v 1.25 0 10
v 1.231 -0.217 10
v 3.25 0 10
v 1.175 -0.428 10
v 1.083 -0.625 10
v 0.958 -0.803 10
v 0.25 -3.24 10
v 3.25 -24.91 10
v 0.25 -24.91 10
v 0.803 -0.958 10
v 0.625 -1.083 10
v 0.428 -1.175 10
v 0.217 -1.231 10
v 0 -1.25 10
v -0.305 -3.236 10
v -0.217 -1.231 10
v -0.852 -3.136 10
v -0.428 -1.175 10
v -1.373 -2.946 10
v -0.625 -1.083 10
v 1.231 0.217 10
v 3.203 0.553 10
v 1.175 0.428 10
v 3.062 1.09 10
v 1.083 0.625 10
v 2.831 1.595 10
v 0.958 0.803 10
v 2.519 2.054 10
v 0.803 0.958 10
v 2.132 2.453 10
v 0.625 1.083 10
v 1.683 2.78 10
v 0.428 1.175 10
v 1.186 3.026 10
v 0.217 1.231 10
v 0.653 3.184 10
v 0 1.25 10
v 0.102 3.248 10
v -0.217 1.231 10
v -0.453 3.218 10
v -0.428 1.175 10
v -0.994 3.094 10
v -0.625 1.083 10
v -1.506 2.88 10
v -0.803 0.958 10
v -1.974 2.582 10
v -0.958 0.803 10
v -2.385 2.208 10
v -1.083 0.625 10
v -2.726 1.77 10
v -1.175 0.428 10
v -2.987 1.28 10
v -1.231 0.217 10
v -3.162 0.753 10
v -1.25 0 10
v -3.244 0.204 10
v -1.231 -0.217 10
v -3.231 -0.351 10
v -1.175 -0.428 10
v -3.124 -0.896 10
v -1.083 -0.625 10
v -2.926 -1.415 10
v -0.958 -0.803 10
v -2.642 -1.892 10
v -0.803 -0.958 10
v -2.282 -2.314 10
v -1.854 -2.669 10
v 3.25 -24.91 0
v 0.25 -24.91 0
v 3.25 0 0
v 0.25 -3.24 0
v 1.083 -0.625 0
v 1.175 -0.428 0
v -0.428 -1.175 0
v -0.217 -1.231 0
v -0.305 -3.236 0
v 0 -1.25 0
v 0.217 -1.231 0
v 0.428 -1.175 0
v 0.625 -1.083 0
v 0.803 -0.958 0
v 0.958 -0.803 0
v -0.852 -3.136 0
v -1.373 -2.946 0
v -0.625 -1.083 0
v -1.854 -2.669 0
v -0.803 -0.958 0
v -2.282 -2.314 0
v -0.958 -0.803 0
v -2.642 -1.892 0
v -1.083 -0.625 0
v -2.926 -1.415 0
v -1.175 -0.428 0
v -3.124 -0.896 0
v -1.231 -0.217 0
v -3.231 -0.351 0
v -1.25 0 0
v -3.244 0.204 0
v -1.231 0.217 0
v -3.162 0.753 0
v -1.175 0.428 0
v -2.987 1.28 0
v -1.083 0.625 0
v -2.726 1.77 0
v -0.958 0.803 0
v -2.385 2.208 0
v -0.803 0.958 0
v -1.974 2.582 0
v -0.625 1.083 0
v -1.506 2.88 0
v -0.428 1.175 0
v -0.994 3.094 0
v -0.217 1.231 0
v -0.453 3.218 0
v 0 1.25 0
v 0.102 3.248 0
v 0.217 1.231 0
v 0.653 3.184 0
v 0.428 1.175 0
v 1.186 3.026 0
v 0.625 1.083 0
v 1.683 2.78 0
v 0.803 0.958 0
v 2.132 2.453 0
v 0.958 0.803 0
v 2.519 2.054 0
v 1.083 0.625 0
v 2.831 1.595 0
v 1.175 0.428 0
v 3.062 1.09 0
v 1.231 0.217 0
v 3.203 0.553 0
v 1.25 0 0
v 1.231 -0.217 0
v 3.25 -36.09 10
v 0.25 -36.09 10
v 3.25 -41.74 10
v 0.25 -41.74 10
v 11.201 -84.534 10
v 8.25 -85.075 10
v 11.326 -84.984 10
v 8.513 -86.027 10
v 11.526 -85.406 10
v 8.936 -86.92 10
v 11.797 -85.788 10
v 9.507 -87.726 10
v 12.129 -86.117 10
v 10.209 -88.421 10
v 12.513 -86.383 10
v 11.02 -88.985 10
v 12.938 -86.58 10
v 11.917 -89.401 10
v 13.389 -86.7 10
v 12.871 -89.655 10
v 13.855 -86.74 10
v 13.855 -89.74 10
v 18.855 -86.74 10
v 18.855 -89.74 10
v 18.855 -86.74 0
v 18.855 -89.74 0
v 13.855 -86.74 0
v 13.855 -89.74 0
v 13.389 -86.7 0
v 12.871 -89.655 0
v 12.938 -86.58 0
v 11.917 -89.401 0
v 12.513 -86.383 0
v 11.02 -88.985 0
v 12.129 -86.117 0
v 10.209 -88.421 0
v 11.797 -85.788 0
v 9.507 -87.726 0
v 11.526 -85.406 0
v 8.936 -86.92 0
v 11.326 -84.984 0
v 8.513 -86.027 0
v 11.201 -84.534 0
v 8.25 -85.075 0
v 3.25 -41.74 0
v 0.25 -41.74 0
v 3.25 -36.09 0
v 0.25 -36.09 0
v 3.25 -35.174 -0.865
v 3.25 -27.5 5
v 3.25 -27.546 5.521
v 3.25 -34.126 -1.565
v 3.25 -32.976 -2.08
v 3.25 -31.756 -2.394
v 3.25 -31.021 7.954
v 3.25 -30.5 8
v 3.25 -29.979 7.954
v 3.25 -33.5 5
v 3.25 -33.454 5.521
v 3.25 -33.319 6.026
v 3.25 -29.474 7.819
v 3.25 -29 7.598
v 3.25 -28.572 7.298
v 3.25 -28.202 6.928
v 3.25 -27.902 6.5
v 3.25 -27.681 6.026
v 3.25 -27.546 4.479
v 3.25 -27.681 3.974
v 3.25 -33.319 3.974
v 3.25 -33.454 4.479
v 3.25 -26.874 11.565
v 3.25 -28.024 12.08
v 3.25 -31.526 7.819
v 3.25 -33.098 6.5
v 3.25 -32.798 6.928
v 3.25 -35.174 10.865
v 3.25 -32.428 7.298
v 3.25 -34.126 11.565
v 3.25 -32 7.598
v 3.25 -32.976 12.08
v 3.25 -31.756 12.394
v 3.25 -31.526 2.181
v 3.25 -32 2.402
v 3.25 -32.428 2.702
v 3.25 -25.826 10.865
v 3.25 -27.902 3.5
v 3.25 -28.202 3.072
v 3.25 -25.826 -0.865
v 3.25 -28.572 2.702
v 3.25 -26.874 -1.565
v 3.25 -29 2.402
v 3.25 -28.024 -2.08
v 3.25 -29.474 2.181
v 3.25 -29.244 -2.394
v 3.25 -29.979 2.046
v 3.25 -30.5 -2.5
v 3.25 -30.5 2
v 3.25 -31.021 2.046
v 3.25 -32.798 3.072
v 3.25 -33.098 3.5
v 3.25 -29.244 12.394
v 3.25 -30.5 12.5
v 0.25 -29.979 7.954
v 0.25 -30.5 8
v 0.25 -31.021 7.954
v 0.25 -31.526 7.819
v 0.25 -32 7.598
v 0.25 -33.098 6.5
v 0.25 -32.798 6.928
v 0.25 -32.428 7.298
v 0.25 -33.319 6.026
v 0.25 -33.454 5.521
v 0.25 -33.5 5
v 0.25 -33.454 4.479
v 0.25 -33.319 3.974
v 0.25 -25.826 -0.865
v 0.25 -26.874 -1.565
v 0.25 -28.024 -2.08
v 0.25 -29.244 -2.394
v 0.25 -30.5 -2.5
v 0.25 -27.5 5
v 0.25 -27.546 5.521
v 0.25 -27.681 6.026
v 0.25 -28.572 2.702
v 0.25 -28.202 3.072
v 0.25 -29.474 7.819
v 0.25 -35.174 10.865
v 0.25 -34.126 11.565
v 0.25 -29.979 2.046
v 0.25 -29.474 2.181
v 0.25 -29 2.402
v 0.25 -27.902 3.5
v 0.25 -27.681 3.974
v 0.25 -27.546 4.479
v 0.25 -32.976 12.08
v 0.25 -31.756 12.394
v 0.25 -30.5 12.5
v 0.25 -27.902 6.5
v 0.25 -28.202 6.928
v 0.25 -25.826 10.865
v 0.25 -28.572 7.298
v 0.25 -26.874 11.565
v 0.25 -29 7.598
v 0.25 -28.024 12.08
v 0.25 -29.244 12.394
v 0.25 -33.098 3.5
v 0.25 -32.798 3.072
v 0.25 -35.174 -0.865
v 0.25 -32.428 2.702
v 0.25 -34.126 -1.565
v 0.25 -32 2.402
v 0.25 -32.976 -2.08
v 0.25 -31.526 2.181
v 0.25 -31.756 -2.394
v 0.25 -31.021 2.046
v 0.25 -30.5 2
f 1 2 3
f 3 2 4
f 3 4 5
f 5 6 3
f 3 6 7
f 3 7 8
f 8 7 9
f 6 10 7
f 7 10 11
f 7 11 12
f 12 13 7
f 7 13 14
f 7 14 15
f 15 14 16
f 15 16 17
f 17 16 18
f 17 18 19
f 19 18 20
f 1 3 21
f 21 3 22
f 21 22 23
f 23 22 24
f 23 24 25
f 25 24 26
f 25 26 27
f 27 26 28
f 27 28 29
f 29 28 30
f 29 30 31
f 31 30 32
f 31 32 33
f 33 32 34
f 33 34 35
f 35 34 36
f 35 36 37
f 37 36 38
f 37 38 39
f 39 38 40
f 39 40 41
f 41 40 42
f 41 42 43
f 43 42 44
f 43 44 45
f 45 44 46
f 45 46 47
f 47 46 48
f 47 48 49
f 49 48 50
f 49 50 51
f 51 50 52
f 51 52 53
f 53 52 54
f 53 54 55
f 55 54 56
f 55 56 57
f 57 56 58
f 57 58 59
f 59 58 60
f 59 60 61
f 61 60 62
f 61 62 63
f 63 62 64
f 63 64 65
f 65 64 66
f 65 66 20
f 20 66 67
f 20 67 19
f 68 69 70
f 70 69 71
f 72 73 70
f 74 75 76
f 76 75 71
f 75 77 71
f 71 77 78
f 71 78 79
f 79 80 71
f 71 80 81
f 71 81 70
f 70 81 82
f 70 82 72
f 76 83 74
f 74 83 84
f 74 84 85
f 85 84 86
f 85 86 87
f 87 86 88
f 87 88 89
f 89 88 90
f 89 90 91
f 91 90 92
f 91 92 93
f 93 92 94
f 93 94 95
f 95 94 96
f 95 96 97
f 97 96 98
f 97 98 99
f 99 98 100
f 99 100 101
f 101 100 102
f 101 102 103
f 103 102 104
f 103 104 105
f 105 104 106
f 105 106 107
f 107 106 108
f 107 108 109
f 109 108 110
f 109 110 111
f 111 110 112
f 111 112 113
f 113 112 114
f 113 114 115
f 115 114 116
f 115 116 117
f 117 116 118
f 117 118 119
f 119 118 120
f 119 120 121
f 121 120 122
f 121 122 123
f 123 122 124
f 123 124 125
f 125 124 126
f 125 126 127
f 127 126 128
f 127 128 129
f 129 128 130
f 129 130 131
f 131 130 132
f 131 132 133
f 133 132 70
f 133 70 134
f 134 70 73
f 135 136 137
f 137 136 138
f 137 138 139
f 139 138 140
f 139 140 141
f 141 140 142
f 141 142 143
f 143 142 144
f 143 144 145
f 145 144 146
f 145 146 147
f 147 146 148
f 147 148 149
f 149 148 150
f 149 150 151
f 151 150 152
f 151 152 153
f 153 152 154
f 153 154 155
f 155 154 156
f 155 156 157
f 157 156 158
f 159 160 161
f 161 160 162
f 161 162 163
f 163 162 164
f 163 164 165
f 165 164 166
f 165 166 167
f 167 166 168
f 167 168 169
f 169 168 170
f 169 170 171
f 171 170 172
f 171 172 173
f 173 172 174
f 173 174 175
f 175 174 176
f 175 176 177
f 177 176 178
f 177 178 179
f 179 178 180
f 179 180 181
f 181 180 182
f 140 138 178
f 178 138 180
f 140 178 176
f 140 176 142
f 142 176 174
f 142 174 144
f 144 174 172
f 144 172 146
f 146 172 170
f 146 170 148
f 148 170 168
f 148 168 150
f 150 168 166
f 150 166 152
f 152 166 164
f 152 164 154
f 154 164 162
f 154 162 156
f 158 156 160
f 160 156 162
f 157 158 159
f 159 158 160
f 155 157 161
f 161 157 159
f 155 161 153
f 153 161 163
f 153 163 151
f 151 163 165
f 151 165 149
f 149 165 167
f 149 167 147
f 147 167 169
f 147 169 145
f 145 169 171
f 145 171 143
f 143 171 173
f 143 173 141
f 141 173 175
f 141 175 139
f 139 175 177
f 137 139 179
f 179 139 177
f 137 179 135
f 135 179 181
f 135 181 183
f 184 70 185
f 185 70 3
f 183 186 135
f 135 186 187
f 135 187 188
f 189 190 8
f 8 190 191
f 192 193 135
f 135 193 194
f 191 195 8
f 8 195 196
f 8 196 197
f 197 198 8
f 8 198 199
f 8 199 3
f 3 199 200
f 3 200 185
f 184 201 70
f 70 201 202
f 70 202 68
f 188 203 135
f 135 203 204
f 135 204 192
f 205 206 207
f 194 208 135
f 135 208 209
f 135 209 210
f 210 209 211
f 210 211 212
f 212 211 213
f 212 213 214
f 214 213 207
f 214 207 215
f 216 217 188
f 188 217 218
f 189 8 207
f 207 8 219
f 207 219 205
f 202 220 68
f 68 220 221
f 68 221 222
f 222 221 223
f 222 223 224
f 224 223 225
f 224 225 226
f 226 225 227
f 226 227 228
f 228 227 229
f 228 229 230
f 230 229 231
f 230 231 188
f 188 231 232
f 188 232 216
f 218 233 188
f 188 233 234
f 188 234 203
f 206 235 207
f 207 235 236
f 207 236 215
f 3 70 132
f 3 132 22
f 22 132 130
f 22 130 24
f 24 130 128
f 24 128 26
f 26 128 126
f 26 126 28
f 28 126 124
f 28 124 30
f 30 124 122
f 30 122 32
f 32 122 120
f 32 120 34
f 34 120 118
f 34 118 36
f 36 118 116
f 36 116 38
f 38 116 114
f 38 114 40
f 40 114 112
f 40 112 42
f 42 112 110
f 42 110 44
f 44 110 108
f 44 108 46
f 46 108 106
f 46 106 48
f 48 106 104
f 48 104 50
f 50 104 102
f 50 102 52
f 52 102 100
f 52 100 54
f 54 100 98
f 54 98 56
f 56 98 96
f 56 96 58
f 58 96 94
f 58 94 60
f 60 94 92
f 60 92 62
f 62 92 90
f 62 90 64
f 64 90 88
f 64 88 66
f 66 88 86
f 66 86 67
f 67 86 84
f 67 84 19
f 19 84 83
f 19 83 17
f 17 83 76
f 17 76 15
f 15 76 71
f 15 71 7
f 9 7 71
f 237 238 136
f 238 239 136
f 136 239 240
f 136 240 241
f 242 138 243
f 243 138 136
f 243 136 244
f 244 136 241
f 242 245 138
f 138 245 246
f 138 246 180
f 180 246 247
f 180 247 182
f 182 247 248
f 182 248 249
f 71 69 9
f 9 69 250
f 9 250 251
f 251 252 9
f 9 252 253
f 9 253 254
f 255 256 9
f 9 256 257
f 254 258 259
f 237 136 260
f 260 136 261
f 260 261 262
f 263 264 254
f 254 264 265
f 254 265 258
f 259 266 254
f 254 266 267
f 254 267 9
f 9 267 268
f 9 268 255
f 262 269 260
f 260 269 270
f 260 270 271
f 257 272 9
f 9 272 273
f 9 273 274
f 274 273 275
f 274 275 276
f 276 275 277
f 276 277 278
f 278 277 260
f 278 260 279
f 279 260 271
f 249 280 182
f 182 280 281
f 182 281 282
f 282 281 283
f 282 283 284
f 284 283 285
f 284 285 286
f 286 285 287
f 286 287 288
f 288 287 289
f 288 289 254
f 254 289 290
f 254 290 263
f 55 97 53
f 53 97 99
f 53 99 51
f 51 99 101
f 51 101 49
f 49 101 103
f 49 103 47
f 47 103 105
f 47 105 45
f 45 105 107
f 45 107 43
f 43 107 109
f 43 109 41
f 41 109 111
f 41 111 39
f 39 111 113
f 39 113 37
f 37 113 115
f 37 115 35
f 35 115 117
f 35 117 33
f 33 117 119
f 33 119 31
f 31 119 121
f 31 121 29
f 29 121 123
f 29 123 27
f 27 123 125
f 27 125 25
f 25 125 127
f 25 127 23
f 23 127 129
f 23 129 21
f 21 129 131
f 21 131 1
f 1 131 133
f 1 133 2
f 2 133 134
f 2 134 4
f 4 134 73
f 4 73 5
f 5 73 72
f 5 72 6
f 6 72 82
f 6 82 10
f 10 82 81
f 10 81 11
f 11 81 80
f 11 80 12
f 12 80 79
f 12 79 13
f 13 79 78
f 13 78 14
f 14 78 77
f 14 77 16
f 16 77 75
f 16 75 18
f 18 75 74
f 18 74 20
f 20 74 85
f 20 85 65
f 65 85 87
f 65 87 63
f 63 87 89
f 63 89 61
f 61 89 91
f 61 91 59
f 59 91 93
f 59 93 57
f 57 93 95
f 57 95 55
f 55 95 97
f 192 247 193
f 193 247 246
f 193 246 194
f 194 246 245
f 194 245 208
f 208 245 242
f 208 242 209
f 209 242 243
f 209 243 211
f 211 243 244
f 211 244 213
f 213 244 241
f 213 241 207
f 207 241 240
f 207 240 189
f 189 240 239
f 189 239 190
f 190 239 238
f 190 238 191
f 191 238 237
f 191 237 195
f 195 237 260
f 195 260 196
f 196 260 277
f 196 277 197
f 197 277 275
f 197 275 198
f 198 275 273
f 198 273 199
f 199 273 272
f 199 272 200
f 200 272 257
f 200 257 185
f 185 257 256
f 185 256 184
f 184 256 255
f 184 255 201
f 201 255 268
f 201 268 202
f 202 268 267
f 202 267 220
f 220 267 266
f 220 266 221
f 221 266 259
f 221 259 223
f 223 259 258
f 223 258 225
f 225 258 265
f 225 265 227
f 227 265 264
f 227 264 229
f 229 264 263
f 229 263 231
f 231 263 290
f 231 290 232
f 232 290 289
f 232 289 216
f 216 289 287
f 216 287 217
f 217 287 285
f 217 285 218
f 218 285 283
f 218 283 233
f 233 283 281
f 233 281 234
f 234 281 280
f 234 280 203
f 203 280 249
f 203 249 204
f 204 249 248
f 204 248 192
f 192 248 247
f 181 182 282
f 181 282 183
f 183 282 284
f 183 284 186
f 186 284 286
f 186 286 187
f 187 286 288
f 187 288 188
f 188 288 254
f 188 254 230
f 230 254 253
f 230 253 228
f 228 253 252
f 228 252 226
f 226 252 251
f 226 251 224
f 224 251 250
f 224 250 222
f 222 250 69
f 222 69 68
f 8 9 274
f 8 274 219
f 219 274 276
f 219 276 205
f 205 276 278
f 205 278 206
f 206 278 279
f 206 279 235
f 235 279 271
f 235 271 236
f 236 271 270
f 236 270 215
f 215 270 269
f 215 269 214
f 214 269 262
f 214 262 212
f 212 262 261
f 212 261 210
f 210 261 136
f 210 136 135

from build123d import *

# Parameters (mm, degrees)
SKETCH1_R           = 1.25
BOSS_EXTRUDE1_DEPTH = 10
CUT_EXTRUDE1_REACH  = 94.193
SKETCH2_R           = 3
SKETCH3_R           = 7.5
SKETCH3_R_2         = 3
BOSS_EXTRUDE2_DEPTH = 3


with BuildPart() as part:
    # Sketch1 → Boss-Extrude1 (new body)
    with BuildSketch(Plane.XY):
        with BuildLine():
            Line((0.25, -3.240370349), (0.25, -41.740370349))
            Line((0.25, -41.740370349), (8.25, -85.075157412))
            ThreePointArc((8.25, -85.075157412), (10.208936196, -88.421482437), (13.855284626, -89.740370349))
            Line((13.855284626, -89.740370349), (18.855284626, -89.740370349))
            Line((18.855284626, -89.740370349), (18.855284626, -86.740370349))
            Line((18.855284626, -86.740370349), (13.855284626, -86.740370349))
            ThreePointArc((13.855284626, -86.740370349), (12.129255683, -86.116622764), (11.200712952, -84.533573379))
            Line((11.200712952, -84.533573379), (3.25, -41.740370349))
            Line((3.25, -41.740370349), (3.25, 0))
            ThreePointArc((3.25, 0), (-2.384848004, 2.207940217), (0.25, -3.240370349))
        make_face()
        Circle(SKETCH1_R, mode=Mode.SUBTRACT)
    extrude(amount=BOSS_EXTRUDE1_DEPTH)

    # Sketch2 → Cut-Extrude1 (cut, up to next)
    with BuildSketch(Plane.ZY.offset(-0.25), mode=Mode.PRIVATE) as cut_extrude1_sk1:
        with Locations(Location((5, -30.5, 0), (0, 0, 270))):
            Circle(SKETCH2_R)
    cut_extrude1_tool1 = extrude(cut_extrude1_sk1.sketch, amount=-CUT_EXTRUDE1_REACH, mode=Mode.PRIVATE) & part.part
    add(cut_extrude1_tool1.solids().sort_by_distance((0.25, -30.5, 5))[0], mode=Mode.SUBTRACT)

    # Sketch3 → Boss-Extrude2 (add)
    with BuildSketch(Plane.ZY.offset(-0.25)):
        with Locations((5, -30.5)):
            Circle(SKETCH3_R)
        with Locations(Location((5, -30.5, 0), (0, 0, 270))):
            Circle(SKETCH3_R_2, mode=Mode.SUBTRACT)
    extrude(amount=-BOSS_EXTRUDE2_DEPTH)


solid = part.part
